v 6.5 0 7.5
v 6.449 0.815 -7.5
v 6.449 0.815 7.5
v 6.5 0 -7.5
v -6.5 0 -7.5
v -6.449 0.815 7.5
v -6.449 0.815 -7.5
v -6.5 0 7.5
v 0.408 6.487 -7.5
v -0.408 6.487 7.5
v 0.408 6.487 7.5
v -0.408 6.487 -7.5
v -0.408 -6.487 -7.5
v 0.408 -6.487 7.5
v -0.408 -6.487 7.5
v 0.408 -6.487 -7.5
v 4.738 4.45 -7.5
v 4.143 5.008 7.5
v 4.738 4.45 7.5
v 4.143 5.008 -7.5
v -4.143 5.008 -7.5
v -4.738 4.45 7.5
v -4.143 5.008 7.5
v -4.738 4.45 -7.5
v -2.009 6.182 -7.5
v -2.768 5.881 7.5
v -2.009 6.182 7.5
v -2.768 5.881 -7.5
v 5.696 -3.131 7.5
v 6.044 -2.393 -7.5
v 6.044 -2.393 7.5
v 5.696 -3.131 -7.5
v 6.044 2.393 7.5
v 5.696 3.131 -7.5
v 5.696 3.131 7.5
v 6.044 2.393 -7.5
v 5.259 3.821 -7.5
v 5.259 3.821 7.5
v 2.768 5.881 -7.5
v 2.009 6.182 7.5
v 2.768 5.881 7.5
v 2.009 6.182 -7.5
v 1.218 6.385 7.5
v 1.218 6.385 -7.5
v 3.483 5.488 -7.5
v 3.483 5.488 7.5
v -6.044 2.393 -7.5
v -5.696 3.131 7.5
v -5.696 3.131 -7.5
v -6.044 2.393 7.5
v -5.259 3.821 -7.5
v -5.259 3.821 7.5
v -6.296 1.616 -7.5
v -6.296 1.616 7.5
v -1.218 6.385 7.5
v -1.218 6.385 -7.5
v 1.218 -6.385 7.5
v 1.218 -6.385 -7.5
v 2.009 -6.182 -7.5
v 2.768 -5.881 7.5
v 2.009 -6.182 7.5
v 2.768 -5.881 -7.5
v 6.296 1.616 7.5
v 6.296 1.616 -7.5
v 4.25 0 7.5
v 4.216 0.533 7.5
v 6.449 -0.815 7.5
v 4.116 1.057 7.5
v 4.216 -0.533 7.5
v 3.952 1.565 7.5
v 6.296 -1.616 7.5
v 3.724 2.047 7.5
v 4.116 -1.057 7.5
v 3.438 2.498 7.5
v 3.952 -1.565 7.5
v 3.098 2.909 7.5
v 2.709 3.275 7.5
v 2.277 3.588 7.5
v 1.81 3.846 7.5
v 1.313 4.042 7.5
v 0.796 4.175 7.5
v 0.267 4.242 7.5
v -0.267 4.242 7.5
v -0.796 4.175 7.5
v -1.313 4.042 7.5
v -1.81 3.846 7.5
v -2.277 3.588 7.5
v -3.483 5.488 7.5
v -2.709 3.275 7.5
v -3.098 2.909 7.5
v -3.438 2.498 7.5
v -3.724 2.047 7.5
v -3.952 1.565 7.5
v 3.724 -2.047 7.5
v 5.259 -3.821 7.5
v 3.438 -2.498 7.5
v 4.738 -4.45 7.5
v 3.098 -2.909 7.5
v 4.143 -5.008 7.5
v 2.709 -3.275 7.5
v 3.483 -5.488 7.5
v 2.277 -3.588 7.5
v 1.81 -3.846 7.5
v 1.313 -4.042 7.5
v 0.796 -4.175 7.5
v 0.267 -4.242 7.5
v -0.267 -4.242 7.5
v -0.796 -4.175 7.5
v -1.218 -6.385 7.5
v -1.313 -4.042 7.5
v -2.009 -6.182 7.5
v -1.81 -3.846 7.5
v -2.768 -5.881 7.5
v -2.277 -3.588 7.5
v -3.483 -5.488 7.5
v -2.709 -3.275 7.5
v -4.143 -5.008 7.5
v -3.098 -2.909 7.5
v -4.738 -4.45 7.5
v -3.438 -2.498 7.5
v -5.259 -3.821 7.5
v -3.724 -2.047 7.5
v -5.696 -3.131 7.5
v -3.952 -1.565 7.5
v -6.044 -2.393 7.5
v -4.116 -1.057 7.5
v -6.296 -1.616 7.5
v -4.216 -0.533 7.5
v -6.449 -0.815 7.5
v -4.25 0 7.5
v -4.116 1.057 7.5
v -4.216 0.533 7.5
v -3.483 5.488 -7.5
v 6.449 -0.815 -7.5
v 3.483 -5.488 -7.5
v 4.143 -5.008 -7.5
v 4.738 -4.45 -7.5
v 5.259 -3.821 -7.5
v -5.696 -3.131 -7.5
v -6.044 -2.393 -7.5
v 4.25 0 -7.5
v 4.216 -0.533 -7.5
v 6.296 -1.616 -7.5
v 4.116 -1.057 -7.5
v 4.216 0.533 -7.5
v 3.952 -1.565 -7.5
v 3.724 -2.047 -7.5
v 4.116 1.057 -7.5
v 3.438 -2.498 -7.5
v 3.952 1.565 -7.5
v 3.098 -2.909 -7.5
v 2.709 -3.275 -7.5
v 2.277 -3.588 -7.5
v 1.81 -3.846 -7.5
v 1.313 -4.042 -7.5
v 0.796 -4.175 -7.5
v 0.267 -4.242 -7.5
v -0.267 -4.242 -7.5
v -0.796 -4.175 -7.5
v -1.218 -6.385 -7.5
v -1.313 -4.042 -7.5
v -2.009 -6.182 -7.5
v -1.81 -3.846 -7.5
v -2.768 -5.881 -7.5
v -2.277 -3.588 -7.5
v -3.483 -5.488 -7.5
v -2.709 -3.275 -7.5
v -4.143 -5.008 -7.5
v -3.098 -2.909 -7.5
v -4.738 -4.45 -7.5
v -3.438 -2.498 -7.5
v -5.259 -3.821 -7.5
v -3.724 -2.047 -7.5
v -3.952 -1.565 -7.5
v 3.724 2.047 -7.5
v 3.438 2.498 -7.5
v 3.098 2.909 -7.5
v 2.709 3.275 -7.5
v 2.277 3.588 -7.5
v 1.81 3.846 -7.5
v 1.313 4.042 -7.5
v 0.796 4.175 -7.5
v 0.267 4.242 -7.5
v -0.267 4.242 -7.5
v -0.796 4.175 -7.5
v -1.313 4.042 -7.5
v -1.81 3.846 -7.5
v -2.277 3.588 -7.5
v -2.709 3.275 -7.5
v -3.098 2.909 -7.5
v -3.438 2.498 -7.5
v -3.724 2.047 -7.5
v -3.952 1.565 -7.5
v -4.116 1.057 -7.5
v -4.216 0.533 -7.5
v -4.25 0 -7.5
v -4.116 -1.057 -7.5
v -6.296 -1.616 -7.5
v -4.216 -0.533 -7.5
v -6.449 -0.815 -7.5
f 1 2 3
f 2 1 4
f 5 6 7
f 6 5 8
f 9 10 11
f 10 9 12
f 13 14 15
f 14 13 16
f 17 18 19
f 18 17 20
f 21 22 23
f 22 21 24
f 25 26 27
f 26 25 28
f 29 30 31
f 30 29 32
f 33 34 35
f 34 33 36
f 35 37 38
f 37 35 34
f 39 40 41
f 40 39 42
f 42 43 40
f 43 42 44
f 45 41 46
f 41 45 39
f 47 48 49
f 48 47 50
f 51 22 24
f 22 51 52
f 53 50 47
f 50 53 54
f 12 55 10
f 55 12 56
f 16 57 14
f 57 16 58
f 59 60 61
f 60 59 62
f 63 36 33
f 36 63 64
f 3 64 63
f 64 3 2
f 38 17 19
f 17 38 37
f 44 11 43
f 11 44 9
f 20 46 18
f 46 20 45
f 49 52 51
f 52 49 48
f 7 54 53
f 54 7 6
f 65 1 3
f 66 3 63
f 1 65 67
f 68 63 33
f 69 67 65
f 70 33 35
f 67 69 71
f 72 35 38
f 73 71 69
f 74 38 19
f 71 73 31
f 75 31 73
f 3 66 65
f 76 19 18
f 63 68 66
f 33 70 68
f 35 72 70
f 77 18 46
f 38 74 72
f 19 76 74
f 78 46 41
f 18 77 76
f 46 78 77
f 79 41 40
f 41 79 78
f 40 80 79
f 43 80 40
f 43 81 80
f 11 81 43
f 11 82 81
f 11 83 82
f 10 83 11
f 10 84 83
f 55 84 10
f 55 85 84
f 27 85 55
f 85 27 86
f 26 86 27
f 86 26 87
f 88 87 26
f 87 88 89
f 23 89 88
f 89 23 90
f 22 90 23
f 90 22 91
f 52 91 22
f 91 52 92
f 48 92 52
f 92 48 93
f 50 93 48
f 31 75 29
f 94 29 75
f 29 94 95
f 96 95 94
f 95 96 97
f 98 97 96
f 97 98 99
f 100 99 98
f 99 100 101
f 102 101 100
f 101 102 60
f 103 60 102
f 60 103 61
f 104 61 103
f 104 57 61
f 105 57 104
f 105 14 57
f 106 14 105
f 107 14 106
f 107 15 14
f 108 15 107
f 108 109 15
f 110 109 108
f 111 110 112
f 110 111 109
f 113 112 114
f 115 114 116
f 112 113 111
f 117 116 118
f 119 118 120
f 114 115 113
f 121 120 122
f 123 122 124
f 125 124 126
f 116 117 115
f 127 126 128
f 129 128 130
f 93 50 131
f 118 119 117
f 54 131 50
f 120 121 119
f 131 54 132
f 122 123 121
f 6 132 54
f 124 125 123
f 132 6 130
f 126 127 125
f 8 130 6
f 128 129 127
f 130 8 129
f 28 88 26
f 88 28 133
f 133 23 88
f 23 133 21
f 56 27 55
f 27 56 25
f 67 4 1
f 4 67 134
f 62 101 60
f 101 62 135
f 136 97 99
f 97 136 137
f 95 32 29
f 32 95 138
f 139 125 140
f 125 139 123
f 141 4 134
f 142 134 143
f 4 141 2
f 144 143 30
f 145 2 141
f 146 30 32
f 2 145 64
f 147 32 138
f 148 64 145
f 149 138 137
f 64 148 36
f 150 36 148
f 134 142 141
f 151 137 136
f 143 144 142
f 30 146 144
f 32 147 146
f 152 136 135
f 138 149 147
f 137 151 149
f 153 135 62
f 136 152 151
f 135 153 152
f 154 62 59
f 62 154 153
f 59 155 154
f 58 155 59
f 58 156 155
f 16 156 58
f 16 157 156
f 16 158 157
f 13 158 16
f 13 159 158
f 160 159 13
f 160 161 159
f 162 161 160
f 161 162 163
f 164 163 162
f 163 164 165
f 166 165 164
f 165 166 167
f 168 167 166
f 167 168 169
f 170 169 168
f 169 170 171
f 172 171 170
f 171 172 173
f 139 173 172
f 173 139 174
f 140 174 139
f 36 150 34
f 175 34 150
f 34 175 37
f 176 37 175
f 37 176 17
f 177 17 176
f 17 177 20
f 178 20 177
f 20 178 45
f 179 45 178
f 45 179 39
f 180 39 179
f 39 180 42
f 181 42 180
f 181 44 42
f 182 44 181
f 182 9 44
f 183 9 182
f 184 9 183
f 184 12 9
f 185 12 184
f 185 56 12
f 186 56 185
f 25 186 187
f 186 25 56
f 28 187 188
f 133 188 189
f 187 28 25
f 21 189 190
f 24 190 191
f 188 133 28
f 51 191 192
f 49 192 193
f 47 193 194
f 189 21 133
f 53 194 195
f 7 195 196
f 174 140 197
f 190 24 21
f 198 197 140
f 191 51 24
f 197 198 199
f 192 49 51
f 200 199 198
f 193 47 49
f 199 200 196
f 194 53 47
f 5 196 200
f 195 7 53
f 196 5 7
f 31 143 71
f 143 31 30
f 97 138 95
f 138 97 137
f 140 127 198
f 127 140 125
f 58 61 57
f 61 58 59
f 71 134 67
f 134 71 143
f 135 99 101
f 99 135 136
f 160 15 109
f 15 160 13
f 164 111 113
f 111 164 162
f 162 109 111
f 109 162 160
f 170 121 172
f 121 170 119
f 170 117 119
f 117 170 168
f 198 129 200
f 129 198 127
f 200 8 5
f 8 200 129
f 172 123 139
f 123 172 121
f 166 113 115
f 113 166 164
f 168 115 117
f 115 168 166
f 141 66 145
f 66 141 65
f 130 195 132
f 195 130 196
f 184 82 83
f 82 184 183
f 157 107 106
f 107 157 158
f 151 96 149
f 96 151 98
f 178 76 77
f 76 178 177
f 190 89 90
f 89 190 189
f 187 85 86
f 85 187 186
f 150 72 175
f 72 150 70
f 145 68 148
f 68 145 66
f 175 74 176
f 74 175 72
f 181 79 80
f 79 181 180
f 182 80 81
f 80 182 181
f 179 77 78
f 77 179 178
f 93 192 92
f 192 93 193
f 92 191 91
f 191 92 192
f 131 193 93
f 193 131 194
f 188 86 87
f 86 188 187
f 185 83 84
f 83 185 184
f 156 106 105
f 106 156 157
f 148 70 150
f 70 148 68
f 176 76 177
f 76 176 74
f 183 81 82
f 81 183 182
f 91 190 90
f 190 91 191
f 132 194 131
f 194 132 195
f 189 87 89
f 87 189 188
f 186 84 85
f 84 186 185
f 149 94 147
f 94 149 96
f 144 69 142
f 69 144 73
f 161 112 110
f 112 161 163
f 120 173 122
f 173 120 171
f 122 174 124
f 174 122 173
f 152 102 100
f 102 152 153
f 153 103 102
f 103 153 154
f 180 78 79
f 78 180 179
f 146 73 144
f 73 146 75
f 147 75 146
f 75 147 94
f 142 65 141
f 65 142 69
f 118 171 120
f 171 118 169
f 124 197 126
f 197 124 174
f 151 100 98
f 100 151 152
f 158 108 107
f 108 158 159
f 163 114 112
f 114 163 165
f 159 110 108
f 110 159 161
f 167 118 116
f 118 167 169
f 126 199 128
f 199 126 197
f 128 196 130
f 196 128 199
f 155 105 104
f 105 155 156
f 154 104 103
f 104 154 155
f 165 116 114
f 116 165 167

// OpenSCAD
$fn = 50;


difference() {
	union() {
		translate(v = [0, 0, -7.5000000000]) {
			cylinder(h = 15, r = 6.5000000000);
		}
	}
	union() {
		translate(v = [0, 0, -100.0000000000]) {
			cylinder(h = 200, r = 4.2500000000);
		}
	}
}
